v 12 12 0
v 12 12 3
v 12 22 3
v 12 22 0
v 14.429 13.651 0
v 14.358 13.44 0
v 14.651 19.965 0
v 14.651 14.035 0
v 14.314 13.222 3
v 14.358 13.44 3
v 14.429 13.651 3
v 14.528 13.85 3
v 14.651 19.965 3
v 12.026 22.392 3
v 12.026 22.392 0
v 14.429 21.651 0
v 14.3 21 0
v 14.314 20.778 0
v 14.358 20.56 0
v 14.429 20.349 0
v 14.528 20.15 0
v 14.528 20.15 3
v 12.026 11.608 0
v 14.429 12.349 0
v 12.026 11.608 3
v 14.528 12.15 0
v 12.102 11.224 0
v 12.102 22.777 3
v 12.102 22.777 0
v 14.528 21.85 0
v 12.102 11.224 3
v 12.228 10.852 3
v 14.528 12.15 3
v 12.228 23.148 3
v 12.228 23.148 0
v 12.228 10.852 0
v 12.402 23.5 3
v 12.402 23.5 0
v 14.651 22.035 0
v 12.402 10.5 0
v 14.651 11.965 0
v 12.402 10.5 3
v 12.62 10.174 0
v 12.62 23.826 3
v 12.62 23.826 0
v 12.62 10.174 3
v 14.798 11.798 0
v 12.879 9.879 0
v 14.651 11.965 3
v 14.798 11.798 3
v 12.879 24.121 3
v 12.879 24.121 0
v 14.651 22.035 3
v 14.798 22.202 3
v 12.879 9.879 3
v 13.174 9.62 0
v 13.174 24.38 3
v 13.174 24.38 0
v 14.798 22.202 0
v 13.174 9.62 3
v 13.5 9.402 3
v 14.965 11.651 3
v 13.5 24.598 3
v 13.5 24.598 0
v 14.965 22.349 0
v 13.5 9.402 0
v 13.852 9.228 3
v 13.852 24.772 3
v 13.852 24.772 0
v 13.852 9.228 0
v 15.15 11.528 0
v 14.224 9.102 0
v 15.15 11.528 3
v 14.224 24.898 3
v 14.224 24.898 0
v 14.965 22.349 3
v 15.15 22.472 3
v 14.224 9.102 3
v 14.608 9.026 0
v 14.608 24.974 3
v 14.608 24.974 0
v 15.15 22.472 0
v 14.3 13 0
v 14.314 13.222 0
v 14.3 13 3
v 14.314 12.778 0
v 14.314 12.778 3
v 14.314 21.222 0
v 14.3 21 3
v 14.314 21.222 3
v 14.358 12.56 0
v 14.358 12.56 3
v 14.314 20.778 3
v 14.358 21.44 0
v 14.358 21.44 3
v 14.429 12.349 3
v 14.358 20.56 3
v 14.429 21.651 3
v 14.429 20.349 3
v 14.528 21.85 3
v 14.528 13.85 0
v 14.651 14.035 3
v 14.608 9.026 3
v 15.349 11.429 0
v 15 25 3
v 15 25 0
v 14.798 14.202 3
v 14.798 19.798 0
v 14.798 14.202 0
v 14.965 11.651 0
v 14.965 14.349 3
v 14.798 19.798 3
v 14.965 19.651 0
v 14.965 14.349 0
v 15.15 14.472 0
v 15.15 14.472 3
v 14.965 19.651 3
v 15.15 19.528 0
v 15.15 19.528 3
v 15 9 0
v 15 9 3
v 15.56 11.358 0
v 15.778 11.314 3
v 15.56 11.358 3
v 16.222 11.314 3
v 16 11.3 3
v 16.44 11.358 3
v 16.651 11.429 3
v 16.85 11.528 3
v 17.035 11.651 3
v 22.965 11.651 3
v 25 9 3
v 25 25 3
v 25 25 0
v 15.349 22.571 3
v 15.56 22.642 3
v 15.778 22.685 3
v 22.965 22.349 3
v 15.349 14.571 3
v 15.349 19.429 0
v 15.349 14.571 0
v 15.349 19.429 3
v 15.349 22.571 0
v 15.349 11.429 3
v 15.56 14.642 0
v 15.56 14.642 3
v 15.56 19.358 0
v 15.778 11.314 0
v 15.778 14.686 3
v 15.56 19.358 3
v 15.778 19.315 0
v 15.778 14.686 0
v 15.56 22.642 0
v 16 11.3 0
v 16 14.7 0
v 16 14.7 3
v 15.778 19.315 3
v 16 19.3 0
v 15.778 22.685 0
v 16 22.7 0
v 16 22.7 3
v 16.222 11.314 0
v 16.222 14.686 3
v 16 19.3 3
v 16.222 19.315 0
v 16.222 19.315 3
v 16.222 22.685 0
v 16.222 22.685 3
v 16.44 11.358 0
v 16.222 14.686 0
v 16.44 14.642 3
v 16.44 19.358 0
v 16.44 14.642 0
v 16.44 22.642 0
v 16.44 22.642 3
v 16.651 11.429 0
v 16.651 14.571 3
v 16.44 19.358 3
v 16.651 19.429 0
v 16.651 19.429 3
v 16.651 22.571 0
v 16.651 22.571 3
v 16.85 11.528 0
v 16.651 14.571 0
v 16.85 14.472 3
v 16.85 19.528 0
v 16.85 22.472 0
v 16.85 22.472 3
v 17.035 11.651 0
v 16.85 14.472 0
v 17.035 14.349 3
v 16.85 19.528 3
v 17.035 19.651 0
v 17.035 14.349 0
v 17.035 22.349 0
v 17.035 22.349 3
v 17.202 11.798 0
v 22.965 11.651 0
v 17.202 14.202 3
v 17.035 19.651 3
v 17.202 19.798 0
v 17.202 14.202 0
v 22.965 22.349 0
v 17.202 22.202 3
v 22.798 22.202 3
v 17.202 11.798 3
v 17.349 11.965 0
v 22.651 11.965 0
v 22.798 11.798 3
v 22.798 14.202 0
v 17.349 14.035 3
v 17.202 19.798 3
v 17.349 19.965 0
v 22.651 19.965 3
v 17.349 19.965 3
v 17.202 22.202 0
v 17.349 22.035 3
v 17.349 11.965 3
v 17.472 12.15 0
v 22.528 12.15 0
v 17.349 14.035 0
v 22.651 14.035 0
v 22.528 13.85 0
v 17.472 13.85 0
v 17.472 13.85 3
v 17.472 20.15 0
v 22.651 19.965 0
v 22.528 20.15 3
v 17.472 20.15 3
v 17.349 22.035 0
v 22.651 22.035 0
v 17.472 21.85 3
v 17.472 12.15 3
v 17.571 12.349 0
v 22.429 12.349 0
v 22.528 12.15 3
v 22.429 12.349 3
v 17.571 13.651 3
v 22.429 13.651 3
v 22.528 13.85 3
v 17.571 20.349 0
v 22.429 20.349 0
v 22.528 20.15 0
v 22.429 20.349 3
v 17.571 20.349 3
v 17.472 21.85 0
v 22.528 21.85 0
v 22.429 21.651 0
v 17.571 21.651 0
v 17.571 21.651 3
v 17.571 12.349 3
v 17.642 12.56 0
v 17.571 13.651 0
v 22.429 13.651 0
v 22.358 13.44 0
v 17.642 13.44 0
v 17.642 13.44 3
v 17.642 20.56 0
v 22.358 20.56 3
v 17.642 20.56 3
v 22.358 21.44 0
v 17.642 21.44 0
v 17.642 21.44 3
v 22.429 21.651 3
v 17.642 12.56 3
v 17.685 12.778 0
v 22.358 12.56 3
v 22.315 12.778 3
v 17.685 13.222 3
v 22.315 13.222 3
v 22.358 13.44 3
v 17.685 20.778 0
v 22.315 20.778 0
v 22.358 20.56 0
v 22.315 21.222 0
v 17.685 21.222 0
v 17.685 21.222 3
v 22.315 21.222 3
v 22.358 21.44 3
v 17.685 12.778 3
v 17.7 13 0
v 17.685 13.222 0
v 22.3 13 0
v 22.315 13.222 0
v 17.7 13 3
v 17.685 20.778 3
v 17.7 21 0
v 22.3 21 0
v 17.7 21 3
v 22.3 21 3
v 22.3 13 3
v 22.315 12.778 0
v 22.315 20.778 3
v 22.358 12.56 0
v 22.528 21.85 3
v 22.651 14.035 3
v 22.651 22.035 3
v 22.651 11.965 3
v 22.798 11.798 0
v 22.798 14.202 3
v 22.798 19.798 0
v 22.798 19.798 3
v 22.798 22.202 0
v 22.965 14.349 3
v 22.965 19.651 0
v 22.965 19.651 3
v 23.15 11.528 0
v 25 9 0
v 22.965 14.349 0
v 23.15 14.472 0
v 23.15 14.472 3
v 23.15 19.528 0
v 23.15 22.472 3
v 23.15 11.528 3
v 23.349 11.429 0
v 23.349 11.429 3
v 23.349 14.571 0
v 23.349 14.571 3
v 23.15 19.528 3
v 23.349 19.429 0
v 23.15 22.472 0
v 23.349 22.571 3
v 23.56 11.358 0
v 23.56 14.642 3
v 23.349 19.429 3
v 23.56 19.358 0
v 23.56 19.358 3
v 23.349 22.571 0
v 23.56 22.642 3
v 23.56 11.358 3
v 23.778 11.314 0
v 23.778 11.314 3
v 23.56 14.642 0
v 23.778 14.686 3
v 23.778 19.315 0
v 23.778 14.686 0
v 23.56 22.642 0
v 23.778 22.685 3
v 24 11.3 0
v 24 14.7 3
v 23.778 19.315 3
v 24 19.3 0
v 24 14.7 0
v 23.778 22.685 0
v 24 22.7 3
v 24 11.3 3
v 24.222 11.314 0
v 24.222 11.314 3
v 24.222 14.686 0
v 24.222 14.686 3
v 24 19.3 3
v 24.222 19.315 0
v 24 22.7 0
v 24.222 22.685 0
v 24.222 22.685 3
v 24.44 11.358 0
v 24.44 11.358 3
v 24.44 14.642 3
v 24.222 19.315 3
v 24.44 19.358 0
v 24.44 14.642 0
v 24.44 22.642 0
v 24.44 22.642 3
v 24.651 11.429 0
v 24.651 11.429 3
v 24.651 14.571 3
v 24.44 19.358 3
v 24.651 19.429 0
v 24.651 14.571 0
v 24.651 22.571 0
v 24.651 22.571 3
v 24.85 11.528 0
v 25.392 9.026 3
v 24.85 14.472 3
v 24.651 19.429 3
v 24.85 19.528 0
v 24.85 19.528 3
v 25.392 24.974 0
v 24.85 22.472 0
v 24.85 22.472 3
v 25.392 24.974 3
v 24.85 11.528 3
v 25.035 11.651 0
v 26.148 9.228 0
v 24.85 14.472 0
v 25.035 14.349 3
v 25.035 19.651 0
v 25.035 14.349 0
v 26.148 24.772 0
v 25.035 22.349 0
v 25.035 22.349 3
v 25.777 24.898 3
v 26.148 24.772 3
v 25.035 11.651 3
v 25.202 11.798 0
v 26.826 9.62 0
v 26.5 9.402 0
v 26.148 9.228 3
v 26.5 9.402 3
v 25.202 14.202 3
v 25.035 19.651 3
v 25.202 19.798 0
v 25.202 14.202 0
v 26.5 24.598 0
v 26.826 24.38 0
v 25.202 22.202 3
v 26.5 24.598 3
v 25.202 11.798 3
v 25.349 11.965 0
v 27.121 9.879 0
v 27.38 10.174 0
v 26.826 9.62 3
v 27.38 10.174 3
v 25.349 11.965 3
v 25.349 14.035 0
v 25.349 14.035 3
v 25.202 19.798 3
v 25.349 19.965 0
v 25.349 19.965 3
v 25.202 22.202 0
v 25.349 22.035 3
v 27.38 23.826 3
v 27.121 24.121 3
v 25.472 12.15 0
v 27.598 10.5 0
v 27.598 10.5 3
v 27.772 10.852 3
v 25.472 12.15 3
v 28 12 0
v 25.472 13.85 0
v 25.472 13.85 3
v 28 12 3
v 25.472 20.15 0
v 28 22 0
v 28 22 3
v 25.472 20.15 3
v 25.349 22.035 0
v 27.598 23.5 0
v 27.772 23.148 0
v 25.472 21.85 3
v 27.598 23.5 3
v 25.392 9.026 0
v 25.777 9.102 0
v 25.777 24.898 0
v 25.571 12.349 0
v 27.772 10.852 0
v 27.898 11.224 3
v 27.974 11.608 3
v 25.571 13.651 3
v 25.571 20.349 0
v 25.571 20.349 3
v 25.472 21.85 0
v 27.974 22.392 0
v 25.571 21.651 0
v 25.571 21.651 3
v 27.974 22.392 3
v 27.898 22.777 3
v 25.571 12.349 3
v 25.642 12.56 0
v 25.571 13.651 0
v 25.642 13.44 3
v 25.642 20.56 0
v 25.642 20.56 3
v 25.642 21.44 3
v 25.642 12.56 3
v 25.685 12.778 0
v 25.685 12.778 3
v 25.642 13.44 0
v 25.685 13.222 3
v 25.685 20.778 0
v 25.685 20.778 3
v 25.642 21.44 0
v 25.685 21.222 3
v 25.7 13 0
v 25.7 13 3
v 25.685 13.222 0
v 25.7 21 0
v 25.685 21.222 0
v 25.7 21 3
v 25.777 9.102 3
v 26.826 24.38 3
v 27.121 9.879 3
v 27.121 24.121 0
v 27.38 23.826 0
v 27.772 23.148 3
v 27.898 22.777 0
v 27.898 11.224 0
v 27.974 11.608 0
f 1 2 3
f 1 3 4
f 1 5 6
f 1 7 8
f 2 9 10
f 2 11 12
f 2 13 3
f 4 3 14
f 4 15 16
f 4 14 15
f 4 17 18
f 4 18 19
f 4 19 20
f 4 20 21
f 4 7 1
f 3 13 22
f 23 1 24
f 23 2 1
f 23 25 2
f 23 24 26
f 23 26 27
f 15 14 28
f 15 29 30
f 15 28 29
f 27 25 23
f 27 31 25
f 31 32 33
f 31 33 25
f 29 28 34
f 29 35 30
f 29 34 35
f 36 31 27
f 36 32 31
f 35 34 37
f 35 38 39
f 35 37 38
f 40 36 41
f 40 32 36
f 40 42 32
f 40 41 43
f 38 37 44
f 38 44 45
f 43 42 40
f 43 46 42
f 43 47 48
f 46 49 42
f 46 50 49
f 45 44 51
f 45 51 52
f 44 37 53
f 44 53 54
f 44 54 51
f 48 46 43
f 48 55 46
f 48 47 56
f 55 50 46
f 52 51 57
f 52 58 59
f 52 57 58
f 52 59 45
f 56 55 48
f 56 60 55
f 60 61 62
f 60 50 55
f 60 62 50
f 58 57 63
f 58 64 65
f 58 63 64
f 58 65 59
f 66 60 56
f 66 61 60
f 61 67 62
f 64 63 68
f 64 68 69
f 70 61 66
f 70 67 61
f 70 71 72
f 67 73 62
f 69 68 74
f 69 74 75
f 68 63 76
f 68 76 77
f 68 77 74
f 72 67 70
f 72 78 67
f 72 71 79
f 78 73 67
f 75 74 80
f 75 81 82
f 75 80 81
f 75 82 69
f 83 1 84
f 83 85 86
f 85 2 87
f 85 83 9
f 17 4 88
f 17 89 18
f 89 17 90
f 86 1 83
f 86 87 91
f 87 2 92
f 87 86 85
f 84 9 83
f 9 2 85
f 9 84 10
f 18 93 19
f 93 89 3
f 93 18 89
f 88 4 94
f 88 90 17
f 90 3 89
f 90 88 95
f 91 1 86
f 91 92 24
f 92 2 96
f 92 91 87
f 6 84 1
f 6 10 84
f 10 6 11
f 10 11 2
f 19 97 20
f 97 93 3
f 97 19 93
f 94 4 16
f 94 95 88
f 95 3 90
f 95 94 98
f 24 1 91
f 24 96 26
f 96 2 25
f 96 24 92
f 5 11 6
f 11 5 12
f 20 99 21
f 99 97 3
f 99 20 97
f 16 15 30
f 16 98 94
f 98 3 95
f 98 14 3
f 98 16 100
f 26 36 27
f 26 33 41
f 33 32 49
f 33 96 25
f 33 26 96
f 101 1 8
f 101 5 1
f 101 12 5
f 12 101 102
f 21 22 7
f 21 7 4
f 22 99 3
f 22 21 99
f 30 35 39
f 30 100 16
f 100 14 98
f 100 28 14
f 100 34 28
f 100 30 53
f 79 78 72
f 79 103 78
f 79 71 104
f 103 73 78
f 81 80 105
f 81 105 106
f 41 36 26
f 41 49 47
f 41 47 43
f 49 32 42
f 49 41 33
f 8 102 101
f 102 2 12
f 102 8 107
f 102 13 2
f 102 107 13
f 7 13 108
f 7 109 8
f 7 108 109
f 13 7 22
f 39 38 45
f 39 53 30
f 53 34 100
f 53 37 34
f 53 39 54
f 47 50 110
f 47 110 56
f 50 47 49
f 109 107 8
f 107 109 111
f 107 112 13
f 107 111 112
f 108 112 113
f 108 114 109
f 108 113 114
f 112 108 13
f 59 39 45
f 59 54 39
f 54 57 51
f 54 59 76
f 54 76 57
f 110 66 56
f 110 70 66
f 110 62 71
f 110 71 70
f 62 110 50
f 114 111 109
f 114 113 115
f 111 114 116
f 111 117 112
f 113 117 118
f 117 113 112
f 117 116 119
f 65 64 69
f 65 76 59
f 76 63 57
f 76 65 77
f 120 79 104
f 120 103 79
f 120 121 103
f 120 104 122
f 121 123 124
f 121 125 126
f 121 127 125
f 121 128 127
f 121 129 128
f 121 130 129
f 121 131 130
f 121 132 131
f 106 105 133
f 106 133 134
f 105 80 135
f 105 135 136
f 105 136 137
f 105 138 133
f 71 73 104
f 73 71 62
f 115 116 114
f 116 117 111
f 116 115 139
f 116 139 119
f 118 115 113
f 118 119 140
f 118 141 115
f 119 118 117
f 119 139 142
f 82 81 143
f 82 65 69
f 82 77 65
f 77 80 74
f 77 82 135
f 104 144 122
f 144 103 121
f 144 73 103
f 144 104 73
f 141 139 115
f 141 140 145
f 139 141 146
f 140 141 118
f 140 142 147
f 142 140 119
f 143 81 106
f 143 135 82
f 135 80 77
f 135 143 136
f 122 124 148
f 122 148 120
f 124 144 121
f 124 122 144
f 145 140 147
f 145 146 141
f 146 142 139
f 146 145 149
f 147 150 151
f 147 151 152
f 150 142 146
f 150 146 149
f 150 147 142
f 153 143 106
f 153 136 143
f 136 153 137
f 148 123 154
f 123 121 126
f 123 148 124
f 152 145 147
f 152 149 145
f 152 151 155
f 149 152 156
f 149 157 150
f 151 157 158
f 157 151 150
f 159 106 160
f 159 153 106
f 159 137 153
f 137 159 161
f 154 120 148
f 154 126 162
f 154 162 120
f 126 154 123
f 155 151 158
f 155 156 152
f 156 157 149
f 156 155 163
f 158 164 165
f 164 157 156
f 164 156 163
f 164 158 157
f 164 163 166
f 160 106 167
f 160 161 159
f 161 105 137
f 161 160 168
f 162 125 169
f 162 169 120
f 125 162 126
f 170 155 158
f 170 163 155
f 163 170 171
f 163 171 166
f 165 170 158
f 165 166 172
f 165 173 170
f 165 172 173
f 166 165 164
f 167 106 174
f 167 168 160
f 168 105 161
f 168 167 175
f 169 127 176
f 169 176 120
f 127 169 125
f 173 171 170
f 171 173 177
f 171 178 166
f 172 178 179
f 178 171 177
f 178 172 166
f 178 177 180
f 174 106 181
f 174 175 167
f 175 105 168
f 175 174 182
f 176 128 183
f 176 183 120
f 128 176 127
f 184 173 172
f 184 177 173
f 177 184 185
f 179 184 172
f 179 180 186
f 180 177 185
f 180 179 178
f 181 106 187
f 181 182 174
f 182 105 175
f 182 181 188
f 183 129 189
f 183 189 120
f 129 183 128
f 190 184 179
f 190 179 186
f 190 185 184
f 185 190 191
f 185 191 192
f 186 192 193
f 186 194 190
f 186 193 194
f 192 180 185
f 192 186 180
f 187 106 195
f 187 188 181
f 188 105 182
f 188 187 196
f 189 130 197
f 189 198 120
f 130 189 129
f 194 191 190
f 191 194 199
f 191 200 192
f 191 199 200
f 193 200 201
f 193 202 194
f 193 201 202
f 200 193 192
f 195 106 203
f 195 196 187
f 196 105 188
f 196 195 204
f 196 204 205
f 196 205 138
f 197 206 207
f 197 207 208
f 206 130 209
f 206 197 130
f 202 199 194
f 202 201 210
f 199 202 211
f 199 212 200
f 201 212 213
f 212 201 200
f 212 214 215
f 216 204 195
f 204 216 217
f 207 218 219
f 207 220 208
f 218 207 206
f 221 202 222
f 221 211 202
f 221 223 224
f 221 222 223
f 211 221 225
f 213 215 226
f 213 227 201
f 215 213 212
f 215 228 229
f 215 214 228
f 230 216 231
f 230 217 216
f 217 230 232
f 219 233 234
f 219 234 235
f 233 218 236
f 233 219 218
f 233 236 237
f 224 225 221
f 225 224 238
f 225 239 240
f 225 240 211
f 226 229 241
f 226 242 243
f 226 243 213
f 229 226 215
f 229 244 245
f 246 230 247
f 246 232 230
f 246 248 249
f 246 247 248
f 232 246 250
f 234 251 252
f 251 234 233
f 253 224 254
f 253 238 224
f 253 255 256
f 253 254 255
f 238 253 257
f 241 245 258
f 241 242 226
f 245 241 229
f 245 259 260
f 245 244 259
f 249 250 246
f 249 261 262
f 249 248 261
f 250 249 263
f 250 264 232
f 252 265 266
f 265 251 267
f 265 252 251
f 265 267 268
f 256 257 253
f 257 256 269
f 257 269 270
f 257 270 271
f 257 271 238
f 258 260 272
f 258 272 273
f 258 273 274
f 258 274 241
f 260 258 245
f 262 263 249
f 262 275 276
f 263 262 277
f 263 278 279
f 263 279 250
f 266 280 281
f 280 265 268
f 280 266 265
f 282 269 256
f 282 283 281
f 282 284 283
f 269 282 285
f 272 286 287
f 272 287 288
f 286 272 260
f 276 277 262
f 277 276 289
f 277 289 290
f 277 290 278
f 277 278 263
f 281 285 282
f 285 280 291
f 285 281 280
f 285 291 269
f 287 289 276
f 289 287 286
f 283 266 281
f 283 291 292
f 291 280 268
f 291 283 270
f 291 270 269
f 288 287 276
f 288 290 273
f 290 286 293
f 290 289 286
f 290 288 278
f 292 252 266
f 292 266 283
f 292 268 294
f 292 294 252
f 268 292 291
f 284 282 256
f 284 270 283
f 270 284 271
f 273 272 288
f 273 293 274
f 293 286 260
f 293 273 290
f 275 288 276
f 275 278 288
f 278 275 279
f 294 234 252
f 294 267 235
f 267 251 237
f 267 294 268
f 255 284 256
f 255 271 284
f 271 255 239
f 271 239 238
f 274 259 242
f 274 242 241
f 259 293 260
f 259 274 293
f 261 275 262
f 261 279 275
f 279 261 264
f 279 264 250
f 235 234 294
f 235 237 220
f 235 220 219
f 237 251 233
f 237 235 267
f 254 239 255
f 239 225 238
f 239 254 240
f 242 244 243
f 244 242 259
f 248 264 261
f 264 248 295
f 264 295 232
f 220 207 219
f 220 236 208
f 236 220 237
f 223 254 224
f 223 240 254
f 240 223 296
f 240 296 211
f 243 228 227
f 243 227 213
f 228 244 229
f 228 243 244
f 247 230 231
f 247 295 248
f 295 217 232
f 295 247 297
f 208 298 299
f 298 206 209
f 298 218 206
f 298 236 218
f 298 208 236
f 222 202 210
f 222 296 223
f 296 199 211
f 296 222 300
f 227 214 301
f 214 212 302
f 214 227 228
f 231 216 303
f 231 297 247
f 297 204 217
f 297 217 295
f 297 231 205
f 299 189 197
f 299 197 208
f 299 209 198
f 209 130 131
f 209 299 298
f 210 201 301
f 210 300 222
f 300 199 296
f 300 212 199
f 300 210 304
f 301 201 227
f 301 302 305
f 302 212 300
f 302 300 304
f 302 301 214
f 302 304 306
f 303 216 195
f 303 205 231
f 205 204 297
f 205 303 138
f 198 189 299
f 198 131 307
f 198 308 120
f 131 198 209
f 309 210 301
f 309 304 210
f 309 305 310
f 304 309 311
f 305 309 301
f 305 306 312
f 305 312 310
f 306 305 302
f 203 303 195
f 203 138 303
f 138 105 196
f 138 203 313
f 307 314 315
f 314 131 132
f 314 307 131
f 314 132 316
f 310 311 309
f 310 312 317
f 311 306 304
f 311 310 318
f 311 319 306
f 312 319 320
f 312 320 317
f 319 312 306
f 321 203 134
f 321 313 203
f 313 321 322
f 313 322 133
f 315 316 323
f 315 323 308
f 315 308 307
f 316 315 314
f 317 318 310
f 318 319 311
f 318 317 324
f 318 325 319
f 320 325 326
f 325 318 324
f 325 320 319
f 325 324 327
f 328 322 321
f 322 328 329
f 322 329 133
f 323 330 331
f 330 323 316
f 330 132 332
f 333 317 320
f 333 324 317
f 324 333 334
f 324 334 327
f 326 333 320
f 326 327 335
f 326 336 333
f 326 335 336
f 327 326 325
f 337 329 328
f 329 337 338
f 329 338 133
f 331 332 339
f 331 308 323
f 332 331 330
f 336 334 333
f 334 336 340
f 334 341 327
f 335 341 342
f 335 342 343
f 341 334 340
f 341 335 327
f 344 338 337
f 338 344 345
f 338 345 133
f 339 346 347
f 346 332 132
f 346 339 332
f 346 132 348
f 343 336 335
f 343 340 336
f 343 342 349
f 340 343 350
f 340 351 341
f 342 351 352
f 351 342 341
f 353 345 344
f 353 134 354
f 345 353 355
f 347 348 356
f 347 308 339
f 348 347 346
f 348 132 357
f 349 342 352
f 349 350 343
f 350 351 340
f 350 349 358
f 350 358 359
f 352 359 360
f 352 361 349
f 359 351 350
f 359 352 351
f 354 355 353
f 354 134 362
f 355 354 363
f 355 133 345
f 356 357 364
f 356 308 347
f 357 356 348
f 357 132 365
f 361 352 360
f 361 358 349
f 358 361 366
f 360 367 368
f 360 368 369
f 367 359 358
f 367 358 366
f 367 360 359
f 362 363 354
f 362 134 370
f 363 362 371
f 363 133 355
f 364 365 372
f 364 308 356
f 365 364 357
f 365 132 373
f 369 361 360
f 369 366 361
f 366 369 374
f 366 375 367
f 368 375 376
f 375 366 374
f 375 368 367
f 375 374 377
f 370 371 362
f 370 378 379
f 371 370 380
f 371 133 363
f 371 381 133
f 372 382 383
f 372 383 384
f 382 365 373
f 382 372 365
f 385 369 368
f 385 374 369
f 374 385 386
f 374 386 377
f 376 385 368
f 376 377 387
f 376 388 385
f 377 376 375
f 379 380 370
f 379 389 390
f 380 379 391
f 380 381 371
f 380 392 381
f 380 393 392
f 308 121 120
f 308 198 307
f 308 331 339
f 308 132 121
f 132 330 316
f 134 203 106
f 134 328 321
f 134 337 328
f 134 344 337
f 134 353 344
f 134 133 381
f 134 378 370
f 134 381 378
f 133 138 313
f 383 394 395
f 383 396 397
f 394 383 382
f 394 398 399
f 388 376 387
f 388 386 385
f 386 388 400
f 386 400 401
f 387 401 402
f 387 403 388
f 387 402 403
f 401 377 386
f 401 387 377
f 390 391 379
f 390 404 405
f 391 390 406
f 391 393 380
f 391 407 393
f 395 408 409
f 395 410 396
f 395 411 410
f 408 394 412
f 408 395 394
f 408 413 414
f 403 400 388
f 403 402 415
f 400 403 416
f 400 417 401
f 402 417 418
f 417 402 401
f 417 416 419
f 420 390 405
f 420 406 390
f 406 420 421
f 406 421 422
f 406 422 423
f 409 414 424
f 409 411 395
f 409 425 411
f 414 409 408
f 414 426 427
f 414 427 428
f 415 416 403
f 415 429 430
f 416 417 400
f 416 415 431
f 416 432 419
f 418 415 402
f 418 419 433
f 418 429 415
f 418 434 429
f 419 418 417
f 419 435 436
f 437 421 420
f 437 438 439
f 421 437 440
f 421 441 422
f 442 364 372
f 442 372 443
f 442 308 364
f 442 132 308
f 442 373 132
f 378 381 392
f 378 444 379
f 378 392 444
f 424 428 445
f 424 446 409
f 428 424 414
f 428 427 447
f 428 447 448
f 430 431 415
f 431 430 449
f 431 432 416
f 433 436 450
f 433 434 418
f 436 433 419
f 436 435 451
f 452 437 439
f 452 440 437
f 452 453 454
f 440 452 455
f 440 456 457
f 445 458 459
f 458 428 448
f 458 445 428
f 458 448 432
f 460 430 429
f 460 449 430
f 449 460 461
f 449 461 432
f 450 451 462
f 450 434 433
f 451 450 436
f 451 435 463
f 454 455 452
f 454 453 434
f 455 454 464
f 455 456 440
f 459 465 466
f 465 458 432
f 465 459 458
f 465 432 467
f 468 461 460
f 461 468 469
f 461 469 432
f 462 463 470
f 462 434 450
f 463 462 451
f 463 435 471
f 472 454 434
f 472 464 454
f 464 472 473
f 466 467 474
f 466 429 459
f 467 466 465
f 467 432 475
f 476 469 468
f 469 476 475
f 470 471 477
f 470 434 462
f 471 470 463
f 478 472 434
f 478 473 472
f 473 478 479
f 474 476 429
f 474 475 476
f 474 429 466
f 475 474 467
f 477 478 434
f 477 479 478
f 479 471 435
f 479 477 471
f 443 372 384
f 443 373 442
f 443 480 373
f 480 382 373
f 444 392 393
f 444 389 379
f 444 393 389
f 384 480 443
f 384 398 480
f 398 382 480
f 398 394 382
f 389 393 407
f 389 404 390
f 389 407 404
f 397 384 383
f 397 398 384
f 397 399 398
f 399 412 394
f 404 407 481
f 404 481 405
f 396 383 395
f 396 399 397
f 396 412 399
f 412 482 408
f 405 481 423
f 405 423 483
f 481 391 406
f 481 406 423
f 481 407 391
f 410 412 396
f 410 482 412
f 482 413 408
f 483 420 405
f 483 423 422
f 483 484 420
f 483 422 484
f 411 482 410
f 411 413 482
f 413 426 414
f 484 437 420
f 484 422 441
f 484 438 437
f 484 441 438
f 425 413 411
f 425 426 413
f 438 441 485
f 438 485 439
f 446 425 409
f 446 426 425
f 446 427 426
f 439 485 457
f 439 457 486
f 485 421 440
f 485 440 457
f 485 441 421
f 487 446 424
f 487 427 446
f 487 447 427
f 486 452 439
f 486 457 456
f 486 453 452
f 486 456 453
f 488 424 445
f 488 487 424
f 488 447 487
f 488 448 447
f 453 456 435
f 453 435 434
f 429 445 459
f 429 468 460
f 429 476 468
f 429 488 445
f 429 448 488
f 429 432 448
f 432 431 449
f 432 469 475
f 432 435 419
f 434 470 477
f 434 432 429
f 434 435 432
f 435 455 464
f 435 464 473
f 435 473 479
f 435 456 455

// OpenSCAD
// file: params.scad
// 18 舵机六足 · 3D 打印机身 · 共享参数和公共模块（本文件自己不导出 STL）
//
// 腿的几何尺寸和固件 firmware/hexapod_g7pro/params.h 的默认值一一对应：
//   coxa_len ↔ coxa    femur_len ↔ femur    tibia_len ↔ tibia
//   front_x / front_y / front_angle / mid_y / rear_x / rear_y / rear_angle 同名
// 所以打印这套机身，固件的腿长和安装位置参数都不用改。
//
// 坐标约定（和固件一致）：
//   机身坐标：X+ = 前，Y+ = 左，Z+ = 上，原点 = 机身中心，高度原点 = 大腿舵机轴。
//   腿坐标：原点 = 基节转轴，X+ = 腿朝外，Y+ = 逆时针一侧，Z+ = 上。
// 6 条腿的零件完全一样（不分左右），左右舵机转向的差别由固件里的 dir 参数处理。

/* [舵机 MG90S（量你自己的）] */
servo_w = 12.2;           // 机身宽度 (mm)
servo_l = 22.8;           // 机身长度，沿安装耳方向 (mm)
ear_span = 32.5;          // 两个安装耳外端之间的总长 (mm)
ear_hole_spacing = 28.0;  // 两个安装孔的中心距 (mm)
ear_z = 15.9;             // 机壳底面 → 安装耳下表面 (mm)
ear_t = 2.5;              // 安装耳厚度 (mm)
case_h = 22.7;            // 机壳底面 → 机壳顶面（不含输出轴）(mm)
shaft_off = 5.4;          // 输出轴中心 → 机身中心，沿长度方向 (mm)
shaft_gap = 4.0;          // 机壳顶面 → 舵机臂贴合面 (mm)

/* [舵机臂（单边臂，量你自己的）] */
horn_hub_d = 7.6;         // 舵机臂中心圆盘直径 (mm)
horn_len = 18.5;          // 中心 → 臂尖 (mm)
horn_w_hub = 6.2;         // 臂根宽度 (mm)
horn_w_tip = 4.2;         // 臂尖宽度 (mm)
horn_t = 1.6;             // 臂厚 = 零件上凹槽深度 (mm)
horn_holes = [10.5, 14.5];// 固定舵机臂的两个孔到中心的距离 (mm)
horn_screw_access = 5.5;  // 中心过孔：舵机臂中心螺丝和螺丝刀从这里进 (mm)

/* [腿的几何（和固件 params.h 一致）] */
coxa_len = 28;            // 基节转轴 → 大腿舵机轴 (mm)
femur_len = 50;           // 大腿舵机轴 → 小腿舵机轴 (mm)
tibia_len = 75;           // 小腿舵机轴 → 脚尖 (mm)
front_x = 60; front_y = 40; front_angle = 45;
mid_y = 55;
rear_x = 60; rear_y = 40; rear_angle = 135;

/* [打印余量和螺丝] */
clearance = 0.4;          // 方孔比舵机大多少 (mm)；太紧改 0.5
screw_pilot = 1.6;        // M2 自攻螺丝底孔（舵机安装耳）(mm)
horn_screw_hole = 2.0;    // 舵机臂固定螺丝过孔 (mm)
m3_hole = 3.4;            // M3 通孔 (mm)

/* [机身] */
plate_t = 3.0;            // 底板 / 甲板厚度 (mm)
standoff_h = 25;          // 底板和甲板之间的 M3 铜柱长度 (mm)
bar_t = 4.0;              // 大腿板厚度 (mm)
mount_t = 3.0;            // 舵机安装板厚度 (mm)
coxa_horn_z = 11;         // 基节舵机臂贴合面高度（相对大腿轴）(mm)

/* [Hidden] */
// 6 条腿：[髋轴 X, 髋轴 Y, 朝向°]，顺序 LF LM LR RF RM RR（和固件 leg 0..5 一致）
legs = [
  [ front_x,  front_y,  front_angle],
  [ 0,        mid_y,    90],
  [-rear_x,   rear_y,   rear_angle],
  [ front_x, -front_y, -front_angle],
  [ 0,       -mid_y,   -90],
  [-rear_x,  -rear_y,  -rear_angle]
];
leg_names = ["LF", "LM", "LR", "RF", "RM", "RR"];

pocket_w = servo_w + clearance;
pocket_l = servo_l + clearance;
// 舵机本地坐标：输出轴 = +Z，舵机臂贴合面在 z = 0，机身沿 +X 伸出（机身中心 x = shaft_off）
ear_low = -shaft_gap - case_h + ear_z;       // 安装耳“朝机壳底”的那一面，安装板贴在这里
plate_top_z = coxa_horn_z + ear_low;         // 底板上表面高度（相对大腿轴）
deck_z = plate_top_z + standoff_h;           // 甲板下表面高度

module at_leg(l) translate([l[0], l[1]]) rotate(l[2]) children();

// 舵机实体（装配预览 / 干涉检查用）
module servo_body() {
  color("DimGray") {
    translate([shaft_off - servo_l / 2, -servo_w / 2, -shaft_gap - case_h]) cube([servo_l, servo_w, case_h]);
    // 耳朵和输出轴都留 0.05 mm，避免“刚好贴着”被干涉检查当成碰撞
    translate([shaft_off - ear_span / 2, -servo_w / 2, ear_low + 0.05]) cube([ear_span, servo_w, ear_t - 0.05]);
    translate([0, 0, -shaft_gap]) cylinder(d = 5, h = shaft_gap - 0.05);
  }
}

// 安装板上的舵机方孔 + 两个安装耳螺丝底孔（在舵机本地坐标里，穿过安装板）
module servo_mount_cut() {
  translate([shaft_off - pocket_l / 2, -pocket_w / 2, ear_low - mount_t - 1]) cube([pocket_l, pocket_w, mount_t + 2]);
  for (s = [-1, 1]) translate([shaft_off + s * ear_hole_spacing / 2, 0, ear_low - mount_t - 1])
    cylinder(d = screw_pilot, h = mount_t + 2, $fn = 16);
}

// 单边舵机臂的 2D 外形：中心在原点，臂沿 +X
module horn_2d(extra = 0) {
  hull() {
    circle(d = horn_hub_d + extra);
    translate([0, -(horn_w_hub + extra) / 2]) square([0.01, horn_w_hub + extra]);
    translate([horn_len - horn_w_tip / 2, 0]) circle(d = horn_w_tip + extra);
  }
}

// 舵机臂凹槽：从 z = 0 往 +Z 挖 horn_t 深，加中心过孔和两个螺丝过孔（贯穿 depth）
module horn_cut(depth) {
  translate([0, 0, -0.01]) linear_extrude(horn_t + 0.01) horn_2d(clearance);
  translate([0, 0, -1]) cylinder(d = horn_screw_access, h = depth + 2, $fn = 24);
  for (r = horn_holes) translate([r, 0, -1]) cylinder(d = horn_screw_hole, h = depth + 2, $fn = 16);
}
// main file
// 短拼接条：打 2 个。装在底板下面，把前块和后块拼起来（左右各一个，两个一样）。
include <parts.scad>
translate([0, 0, -splice_z]) splice_short();
